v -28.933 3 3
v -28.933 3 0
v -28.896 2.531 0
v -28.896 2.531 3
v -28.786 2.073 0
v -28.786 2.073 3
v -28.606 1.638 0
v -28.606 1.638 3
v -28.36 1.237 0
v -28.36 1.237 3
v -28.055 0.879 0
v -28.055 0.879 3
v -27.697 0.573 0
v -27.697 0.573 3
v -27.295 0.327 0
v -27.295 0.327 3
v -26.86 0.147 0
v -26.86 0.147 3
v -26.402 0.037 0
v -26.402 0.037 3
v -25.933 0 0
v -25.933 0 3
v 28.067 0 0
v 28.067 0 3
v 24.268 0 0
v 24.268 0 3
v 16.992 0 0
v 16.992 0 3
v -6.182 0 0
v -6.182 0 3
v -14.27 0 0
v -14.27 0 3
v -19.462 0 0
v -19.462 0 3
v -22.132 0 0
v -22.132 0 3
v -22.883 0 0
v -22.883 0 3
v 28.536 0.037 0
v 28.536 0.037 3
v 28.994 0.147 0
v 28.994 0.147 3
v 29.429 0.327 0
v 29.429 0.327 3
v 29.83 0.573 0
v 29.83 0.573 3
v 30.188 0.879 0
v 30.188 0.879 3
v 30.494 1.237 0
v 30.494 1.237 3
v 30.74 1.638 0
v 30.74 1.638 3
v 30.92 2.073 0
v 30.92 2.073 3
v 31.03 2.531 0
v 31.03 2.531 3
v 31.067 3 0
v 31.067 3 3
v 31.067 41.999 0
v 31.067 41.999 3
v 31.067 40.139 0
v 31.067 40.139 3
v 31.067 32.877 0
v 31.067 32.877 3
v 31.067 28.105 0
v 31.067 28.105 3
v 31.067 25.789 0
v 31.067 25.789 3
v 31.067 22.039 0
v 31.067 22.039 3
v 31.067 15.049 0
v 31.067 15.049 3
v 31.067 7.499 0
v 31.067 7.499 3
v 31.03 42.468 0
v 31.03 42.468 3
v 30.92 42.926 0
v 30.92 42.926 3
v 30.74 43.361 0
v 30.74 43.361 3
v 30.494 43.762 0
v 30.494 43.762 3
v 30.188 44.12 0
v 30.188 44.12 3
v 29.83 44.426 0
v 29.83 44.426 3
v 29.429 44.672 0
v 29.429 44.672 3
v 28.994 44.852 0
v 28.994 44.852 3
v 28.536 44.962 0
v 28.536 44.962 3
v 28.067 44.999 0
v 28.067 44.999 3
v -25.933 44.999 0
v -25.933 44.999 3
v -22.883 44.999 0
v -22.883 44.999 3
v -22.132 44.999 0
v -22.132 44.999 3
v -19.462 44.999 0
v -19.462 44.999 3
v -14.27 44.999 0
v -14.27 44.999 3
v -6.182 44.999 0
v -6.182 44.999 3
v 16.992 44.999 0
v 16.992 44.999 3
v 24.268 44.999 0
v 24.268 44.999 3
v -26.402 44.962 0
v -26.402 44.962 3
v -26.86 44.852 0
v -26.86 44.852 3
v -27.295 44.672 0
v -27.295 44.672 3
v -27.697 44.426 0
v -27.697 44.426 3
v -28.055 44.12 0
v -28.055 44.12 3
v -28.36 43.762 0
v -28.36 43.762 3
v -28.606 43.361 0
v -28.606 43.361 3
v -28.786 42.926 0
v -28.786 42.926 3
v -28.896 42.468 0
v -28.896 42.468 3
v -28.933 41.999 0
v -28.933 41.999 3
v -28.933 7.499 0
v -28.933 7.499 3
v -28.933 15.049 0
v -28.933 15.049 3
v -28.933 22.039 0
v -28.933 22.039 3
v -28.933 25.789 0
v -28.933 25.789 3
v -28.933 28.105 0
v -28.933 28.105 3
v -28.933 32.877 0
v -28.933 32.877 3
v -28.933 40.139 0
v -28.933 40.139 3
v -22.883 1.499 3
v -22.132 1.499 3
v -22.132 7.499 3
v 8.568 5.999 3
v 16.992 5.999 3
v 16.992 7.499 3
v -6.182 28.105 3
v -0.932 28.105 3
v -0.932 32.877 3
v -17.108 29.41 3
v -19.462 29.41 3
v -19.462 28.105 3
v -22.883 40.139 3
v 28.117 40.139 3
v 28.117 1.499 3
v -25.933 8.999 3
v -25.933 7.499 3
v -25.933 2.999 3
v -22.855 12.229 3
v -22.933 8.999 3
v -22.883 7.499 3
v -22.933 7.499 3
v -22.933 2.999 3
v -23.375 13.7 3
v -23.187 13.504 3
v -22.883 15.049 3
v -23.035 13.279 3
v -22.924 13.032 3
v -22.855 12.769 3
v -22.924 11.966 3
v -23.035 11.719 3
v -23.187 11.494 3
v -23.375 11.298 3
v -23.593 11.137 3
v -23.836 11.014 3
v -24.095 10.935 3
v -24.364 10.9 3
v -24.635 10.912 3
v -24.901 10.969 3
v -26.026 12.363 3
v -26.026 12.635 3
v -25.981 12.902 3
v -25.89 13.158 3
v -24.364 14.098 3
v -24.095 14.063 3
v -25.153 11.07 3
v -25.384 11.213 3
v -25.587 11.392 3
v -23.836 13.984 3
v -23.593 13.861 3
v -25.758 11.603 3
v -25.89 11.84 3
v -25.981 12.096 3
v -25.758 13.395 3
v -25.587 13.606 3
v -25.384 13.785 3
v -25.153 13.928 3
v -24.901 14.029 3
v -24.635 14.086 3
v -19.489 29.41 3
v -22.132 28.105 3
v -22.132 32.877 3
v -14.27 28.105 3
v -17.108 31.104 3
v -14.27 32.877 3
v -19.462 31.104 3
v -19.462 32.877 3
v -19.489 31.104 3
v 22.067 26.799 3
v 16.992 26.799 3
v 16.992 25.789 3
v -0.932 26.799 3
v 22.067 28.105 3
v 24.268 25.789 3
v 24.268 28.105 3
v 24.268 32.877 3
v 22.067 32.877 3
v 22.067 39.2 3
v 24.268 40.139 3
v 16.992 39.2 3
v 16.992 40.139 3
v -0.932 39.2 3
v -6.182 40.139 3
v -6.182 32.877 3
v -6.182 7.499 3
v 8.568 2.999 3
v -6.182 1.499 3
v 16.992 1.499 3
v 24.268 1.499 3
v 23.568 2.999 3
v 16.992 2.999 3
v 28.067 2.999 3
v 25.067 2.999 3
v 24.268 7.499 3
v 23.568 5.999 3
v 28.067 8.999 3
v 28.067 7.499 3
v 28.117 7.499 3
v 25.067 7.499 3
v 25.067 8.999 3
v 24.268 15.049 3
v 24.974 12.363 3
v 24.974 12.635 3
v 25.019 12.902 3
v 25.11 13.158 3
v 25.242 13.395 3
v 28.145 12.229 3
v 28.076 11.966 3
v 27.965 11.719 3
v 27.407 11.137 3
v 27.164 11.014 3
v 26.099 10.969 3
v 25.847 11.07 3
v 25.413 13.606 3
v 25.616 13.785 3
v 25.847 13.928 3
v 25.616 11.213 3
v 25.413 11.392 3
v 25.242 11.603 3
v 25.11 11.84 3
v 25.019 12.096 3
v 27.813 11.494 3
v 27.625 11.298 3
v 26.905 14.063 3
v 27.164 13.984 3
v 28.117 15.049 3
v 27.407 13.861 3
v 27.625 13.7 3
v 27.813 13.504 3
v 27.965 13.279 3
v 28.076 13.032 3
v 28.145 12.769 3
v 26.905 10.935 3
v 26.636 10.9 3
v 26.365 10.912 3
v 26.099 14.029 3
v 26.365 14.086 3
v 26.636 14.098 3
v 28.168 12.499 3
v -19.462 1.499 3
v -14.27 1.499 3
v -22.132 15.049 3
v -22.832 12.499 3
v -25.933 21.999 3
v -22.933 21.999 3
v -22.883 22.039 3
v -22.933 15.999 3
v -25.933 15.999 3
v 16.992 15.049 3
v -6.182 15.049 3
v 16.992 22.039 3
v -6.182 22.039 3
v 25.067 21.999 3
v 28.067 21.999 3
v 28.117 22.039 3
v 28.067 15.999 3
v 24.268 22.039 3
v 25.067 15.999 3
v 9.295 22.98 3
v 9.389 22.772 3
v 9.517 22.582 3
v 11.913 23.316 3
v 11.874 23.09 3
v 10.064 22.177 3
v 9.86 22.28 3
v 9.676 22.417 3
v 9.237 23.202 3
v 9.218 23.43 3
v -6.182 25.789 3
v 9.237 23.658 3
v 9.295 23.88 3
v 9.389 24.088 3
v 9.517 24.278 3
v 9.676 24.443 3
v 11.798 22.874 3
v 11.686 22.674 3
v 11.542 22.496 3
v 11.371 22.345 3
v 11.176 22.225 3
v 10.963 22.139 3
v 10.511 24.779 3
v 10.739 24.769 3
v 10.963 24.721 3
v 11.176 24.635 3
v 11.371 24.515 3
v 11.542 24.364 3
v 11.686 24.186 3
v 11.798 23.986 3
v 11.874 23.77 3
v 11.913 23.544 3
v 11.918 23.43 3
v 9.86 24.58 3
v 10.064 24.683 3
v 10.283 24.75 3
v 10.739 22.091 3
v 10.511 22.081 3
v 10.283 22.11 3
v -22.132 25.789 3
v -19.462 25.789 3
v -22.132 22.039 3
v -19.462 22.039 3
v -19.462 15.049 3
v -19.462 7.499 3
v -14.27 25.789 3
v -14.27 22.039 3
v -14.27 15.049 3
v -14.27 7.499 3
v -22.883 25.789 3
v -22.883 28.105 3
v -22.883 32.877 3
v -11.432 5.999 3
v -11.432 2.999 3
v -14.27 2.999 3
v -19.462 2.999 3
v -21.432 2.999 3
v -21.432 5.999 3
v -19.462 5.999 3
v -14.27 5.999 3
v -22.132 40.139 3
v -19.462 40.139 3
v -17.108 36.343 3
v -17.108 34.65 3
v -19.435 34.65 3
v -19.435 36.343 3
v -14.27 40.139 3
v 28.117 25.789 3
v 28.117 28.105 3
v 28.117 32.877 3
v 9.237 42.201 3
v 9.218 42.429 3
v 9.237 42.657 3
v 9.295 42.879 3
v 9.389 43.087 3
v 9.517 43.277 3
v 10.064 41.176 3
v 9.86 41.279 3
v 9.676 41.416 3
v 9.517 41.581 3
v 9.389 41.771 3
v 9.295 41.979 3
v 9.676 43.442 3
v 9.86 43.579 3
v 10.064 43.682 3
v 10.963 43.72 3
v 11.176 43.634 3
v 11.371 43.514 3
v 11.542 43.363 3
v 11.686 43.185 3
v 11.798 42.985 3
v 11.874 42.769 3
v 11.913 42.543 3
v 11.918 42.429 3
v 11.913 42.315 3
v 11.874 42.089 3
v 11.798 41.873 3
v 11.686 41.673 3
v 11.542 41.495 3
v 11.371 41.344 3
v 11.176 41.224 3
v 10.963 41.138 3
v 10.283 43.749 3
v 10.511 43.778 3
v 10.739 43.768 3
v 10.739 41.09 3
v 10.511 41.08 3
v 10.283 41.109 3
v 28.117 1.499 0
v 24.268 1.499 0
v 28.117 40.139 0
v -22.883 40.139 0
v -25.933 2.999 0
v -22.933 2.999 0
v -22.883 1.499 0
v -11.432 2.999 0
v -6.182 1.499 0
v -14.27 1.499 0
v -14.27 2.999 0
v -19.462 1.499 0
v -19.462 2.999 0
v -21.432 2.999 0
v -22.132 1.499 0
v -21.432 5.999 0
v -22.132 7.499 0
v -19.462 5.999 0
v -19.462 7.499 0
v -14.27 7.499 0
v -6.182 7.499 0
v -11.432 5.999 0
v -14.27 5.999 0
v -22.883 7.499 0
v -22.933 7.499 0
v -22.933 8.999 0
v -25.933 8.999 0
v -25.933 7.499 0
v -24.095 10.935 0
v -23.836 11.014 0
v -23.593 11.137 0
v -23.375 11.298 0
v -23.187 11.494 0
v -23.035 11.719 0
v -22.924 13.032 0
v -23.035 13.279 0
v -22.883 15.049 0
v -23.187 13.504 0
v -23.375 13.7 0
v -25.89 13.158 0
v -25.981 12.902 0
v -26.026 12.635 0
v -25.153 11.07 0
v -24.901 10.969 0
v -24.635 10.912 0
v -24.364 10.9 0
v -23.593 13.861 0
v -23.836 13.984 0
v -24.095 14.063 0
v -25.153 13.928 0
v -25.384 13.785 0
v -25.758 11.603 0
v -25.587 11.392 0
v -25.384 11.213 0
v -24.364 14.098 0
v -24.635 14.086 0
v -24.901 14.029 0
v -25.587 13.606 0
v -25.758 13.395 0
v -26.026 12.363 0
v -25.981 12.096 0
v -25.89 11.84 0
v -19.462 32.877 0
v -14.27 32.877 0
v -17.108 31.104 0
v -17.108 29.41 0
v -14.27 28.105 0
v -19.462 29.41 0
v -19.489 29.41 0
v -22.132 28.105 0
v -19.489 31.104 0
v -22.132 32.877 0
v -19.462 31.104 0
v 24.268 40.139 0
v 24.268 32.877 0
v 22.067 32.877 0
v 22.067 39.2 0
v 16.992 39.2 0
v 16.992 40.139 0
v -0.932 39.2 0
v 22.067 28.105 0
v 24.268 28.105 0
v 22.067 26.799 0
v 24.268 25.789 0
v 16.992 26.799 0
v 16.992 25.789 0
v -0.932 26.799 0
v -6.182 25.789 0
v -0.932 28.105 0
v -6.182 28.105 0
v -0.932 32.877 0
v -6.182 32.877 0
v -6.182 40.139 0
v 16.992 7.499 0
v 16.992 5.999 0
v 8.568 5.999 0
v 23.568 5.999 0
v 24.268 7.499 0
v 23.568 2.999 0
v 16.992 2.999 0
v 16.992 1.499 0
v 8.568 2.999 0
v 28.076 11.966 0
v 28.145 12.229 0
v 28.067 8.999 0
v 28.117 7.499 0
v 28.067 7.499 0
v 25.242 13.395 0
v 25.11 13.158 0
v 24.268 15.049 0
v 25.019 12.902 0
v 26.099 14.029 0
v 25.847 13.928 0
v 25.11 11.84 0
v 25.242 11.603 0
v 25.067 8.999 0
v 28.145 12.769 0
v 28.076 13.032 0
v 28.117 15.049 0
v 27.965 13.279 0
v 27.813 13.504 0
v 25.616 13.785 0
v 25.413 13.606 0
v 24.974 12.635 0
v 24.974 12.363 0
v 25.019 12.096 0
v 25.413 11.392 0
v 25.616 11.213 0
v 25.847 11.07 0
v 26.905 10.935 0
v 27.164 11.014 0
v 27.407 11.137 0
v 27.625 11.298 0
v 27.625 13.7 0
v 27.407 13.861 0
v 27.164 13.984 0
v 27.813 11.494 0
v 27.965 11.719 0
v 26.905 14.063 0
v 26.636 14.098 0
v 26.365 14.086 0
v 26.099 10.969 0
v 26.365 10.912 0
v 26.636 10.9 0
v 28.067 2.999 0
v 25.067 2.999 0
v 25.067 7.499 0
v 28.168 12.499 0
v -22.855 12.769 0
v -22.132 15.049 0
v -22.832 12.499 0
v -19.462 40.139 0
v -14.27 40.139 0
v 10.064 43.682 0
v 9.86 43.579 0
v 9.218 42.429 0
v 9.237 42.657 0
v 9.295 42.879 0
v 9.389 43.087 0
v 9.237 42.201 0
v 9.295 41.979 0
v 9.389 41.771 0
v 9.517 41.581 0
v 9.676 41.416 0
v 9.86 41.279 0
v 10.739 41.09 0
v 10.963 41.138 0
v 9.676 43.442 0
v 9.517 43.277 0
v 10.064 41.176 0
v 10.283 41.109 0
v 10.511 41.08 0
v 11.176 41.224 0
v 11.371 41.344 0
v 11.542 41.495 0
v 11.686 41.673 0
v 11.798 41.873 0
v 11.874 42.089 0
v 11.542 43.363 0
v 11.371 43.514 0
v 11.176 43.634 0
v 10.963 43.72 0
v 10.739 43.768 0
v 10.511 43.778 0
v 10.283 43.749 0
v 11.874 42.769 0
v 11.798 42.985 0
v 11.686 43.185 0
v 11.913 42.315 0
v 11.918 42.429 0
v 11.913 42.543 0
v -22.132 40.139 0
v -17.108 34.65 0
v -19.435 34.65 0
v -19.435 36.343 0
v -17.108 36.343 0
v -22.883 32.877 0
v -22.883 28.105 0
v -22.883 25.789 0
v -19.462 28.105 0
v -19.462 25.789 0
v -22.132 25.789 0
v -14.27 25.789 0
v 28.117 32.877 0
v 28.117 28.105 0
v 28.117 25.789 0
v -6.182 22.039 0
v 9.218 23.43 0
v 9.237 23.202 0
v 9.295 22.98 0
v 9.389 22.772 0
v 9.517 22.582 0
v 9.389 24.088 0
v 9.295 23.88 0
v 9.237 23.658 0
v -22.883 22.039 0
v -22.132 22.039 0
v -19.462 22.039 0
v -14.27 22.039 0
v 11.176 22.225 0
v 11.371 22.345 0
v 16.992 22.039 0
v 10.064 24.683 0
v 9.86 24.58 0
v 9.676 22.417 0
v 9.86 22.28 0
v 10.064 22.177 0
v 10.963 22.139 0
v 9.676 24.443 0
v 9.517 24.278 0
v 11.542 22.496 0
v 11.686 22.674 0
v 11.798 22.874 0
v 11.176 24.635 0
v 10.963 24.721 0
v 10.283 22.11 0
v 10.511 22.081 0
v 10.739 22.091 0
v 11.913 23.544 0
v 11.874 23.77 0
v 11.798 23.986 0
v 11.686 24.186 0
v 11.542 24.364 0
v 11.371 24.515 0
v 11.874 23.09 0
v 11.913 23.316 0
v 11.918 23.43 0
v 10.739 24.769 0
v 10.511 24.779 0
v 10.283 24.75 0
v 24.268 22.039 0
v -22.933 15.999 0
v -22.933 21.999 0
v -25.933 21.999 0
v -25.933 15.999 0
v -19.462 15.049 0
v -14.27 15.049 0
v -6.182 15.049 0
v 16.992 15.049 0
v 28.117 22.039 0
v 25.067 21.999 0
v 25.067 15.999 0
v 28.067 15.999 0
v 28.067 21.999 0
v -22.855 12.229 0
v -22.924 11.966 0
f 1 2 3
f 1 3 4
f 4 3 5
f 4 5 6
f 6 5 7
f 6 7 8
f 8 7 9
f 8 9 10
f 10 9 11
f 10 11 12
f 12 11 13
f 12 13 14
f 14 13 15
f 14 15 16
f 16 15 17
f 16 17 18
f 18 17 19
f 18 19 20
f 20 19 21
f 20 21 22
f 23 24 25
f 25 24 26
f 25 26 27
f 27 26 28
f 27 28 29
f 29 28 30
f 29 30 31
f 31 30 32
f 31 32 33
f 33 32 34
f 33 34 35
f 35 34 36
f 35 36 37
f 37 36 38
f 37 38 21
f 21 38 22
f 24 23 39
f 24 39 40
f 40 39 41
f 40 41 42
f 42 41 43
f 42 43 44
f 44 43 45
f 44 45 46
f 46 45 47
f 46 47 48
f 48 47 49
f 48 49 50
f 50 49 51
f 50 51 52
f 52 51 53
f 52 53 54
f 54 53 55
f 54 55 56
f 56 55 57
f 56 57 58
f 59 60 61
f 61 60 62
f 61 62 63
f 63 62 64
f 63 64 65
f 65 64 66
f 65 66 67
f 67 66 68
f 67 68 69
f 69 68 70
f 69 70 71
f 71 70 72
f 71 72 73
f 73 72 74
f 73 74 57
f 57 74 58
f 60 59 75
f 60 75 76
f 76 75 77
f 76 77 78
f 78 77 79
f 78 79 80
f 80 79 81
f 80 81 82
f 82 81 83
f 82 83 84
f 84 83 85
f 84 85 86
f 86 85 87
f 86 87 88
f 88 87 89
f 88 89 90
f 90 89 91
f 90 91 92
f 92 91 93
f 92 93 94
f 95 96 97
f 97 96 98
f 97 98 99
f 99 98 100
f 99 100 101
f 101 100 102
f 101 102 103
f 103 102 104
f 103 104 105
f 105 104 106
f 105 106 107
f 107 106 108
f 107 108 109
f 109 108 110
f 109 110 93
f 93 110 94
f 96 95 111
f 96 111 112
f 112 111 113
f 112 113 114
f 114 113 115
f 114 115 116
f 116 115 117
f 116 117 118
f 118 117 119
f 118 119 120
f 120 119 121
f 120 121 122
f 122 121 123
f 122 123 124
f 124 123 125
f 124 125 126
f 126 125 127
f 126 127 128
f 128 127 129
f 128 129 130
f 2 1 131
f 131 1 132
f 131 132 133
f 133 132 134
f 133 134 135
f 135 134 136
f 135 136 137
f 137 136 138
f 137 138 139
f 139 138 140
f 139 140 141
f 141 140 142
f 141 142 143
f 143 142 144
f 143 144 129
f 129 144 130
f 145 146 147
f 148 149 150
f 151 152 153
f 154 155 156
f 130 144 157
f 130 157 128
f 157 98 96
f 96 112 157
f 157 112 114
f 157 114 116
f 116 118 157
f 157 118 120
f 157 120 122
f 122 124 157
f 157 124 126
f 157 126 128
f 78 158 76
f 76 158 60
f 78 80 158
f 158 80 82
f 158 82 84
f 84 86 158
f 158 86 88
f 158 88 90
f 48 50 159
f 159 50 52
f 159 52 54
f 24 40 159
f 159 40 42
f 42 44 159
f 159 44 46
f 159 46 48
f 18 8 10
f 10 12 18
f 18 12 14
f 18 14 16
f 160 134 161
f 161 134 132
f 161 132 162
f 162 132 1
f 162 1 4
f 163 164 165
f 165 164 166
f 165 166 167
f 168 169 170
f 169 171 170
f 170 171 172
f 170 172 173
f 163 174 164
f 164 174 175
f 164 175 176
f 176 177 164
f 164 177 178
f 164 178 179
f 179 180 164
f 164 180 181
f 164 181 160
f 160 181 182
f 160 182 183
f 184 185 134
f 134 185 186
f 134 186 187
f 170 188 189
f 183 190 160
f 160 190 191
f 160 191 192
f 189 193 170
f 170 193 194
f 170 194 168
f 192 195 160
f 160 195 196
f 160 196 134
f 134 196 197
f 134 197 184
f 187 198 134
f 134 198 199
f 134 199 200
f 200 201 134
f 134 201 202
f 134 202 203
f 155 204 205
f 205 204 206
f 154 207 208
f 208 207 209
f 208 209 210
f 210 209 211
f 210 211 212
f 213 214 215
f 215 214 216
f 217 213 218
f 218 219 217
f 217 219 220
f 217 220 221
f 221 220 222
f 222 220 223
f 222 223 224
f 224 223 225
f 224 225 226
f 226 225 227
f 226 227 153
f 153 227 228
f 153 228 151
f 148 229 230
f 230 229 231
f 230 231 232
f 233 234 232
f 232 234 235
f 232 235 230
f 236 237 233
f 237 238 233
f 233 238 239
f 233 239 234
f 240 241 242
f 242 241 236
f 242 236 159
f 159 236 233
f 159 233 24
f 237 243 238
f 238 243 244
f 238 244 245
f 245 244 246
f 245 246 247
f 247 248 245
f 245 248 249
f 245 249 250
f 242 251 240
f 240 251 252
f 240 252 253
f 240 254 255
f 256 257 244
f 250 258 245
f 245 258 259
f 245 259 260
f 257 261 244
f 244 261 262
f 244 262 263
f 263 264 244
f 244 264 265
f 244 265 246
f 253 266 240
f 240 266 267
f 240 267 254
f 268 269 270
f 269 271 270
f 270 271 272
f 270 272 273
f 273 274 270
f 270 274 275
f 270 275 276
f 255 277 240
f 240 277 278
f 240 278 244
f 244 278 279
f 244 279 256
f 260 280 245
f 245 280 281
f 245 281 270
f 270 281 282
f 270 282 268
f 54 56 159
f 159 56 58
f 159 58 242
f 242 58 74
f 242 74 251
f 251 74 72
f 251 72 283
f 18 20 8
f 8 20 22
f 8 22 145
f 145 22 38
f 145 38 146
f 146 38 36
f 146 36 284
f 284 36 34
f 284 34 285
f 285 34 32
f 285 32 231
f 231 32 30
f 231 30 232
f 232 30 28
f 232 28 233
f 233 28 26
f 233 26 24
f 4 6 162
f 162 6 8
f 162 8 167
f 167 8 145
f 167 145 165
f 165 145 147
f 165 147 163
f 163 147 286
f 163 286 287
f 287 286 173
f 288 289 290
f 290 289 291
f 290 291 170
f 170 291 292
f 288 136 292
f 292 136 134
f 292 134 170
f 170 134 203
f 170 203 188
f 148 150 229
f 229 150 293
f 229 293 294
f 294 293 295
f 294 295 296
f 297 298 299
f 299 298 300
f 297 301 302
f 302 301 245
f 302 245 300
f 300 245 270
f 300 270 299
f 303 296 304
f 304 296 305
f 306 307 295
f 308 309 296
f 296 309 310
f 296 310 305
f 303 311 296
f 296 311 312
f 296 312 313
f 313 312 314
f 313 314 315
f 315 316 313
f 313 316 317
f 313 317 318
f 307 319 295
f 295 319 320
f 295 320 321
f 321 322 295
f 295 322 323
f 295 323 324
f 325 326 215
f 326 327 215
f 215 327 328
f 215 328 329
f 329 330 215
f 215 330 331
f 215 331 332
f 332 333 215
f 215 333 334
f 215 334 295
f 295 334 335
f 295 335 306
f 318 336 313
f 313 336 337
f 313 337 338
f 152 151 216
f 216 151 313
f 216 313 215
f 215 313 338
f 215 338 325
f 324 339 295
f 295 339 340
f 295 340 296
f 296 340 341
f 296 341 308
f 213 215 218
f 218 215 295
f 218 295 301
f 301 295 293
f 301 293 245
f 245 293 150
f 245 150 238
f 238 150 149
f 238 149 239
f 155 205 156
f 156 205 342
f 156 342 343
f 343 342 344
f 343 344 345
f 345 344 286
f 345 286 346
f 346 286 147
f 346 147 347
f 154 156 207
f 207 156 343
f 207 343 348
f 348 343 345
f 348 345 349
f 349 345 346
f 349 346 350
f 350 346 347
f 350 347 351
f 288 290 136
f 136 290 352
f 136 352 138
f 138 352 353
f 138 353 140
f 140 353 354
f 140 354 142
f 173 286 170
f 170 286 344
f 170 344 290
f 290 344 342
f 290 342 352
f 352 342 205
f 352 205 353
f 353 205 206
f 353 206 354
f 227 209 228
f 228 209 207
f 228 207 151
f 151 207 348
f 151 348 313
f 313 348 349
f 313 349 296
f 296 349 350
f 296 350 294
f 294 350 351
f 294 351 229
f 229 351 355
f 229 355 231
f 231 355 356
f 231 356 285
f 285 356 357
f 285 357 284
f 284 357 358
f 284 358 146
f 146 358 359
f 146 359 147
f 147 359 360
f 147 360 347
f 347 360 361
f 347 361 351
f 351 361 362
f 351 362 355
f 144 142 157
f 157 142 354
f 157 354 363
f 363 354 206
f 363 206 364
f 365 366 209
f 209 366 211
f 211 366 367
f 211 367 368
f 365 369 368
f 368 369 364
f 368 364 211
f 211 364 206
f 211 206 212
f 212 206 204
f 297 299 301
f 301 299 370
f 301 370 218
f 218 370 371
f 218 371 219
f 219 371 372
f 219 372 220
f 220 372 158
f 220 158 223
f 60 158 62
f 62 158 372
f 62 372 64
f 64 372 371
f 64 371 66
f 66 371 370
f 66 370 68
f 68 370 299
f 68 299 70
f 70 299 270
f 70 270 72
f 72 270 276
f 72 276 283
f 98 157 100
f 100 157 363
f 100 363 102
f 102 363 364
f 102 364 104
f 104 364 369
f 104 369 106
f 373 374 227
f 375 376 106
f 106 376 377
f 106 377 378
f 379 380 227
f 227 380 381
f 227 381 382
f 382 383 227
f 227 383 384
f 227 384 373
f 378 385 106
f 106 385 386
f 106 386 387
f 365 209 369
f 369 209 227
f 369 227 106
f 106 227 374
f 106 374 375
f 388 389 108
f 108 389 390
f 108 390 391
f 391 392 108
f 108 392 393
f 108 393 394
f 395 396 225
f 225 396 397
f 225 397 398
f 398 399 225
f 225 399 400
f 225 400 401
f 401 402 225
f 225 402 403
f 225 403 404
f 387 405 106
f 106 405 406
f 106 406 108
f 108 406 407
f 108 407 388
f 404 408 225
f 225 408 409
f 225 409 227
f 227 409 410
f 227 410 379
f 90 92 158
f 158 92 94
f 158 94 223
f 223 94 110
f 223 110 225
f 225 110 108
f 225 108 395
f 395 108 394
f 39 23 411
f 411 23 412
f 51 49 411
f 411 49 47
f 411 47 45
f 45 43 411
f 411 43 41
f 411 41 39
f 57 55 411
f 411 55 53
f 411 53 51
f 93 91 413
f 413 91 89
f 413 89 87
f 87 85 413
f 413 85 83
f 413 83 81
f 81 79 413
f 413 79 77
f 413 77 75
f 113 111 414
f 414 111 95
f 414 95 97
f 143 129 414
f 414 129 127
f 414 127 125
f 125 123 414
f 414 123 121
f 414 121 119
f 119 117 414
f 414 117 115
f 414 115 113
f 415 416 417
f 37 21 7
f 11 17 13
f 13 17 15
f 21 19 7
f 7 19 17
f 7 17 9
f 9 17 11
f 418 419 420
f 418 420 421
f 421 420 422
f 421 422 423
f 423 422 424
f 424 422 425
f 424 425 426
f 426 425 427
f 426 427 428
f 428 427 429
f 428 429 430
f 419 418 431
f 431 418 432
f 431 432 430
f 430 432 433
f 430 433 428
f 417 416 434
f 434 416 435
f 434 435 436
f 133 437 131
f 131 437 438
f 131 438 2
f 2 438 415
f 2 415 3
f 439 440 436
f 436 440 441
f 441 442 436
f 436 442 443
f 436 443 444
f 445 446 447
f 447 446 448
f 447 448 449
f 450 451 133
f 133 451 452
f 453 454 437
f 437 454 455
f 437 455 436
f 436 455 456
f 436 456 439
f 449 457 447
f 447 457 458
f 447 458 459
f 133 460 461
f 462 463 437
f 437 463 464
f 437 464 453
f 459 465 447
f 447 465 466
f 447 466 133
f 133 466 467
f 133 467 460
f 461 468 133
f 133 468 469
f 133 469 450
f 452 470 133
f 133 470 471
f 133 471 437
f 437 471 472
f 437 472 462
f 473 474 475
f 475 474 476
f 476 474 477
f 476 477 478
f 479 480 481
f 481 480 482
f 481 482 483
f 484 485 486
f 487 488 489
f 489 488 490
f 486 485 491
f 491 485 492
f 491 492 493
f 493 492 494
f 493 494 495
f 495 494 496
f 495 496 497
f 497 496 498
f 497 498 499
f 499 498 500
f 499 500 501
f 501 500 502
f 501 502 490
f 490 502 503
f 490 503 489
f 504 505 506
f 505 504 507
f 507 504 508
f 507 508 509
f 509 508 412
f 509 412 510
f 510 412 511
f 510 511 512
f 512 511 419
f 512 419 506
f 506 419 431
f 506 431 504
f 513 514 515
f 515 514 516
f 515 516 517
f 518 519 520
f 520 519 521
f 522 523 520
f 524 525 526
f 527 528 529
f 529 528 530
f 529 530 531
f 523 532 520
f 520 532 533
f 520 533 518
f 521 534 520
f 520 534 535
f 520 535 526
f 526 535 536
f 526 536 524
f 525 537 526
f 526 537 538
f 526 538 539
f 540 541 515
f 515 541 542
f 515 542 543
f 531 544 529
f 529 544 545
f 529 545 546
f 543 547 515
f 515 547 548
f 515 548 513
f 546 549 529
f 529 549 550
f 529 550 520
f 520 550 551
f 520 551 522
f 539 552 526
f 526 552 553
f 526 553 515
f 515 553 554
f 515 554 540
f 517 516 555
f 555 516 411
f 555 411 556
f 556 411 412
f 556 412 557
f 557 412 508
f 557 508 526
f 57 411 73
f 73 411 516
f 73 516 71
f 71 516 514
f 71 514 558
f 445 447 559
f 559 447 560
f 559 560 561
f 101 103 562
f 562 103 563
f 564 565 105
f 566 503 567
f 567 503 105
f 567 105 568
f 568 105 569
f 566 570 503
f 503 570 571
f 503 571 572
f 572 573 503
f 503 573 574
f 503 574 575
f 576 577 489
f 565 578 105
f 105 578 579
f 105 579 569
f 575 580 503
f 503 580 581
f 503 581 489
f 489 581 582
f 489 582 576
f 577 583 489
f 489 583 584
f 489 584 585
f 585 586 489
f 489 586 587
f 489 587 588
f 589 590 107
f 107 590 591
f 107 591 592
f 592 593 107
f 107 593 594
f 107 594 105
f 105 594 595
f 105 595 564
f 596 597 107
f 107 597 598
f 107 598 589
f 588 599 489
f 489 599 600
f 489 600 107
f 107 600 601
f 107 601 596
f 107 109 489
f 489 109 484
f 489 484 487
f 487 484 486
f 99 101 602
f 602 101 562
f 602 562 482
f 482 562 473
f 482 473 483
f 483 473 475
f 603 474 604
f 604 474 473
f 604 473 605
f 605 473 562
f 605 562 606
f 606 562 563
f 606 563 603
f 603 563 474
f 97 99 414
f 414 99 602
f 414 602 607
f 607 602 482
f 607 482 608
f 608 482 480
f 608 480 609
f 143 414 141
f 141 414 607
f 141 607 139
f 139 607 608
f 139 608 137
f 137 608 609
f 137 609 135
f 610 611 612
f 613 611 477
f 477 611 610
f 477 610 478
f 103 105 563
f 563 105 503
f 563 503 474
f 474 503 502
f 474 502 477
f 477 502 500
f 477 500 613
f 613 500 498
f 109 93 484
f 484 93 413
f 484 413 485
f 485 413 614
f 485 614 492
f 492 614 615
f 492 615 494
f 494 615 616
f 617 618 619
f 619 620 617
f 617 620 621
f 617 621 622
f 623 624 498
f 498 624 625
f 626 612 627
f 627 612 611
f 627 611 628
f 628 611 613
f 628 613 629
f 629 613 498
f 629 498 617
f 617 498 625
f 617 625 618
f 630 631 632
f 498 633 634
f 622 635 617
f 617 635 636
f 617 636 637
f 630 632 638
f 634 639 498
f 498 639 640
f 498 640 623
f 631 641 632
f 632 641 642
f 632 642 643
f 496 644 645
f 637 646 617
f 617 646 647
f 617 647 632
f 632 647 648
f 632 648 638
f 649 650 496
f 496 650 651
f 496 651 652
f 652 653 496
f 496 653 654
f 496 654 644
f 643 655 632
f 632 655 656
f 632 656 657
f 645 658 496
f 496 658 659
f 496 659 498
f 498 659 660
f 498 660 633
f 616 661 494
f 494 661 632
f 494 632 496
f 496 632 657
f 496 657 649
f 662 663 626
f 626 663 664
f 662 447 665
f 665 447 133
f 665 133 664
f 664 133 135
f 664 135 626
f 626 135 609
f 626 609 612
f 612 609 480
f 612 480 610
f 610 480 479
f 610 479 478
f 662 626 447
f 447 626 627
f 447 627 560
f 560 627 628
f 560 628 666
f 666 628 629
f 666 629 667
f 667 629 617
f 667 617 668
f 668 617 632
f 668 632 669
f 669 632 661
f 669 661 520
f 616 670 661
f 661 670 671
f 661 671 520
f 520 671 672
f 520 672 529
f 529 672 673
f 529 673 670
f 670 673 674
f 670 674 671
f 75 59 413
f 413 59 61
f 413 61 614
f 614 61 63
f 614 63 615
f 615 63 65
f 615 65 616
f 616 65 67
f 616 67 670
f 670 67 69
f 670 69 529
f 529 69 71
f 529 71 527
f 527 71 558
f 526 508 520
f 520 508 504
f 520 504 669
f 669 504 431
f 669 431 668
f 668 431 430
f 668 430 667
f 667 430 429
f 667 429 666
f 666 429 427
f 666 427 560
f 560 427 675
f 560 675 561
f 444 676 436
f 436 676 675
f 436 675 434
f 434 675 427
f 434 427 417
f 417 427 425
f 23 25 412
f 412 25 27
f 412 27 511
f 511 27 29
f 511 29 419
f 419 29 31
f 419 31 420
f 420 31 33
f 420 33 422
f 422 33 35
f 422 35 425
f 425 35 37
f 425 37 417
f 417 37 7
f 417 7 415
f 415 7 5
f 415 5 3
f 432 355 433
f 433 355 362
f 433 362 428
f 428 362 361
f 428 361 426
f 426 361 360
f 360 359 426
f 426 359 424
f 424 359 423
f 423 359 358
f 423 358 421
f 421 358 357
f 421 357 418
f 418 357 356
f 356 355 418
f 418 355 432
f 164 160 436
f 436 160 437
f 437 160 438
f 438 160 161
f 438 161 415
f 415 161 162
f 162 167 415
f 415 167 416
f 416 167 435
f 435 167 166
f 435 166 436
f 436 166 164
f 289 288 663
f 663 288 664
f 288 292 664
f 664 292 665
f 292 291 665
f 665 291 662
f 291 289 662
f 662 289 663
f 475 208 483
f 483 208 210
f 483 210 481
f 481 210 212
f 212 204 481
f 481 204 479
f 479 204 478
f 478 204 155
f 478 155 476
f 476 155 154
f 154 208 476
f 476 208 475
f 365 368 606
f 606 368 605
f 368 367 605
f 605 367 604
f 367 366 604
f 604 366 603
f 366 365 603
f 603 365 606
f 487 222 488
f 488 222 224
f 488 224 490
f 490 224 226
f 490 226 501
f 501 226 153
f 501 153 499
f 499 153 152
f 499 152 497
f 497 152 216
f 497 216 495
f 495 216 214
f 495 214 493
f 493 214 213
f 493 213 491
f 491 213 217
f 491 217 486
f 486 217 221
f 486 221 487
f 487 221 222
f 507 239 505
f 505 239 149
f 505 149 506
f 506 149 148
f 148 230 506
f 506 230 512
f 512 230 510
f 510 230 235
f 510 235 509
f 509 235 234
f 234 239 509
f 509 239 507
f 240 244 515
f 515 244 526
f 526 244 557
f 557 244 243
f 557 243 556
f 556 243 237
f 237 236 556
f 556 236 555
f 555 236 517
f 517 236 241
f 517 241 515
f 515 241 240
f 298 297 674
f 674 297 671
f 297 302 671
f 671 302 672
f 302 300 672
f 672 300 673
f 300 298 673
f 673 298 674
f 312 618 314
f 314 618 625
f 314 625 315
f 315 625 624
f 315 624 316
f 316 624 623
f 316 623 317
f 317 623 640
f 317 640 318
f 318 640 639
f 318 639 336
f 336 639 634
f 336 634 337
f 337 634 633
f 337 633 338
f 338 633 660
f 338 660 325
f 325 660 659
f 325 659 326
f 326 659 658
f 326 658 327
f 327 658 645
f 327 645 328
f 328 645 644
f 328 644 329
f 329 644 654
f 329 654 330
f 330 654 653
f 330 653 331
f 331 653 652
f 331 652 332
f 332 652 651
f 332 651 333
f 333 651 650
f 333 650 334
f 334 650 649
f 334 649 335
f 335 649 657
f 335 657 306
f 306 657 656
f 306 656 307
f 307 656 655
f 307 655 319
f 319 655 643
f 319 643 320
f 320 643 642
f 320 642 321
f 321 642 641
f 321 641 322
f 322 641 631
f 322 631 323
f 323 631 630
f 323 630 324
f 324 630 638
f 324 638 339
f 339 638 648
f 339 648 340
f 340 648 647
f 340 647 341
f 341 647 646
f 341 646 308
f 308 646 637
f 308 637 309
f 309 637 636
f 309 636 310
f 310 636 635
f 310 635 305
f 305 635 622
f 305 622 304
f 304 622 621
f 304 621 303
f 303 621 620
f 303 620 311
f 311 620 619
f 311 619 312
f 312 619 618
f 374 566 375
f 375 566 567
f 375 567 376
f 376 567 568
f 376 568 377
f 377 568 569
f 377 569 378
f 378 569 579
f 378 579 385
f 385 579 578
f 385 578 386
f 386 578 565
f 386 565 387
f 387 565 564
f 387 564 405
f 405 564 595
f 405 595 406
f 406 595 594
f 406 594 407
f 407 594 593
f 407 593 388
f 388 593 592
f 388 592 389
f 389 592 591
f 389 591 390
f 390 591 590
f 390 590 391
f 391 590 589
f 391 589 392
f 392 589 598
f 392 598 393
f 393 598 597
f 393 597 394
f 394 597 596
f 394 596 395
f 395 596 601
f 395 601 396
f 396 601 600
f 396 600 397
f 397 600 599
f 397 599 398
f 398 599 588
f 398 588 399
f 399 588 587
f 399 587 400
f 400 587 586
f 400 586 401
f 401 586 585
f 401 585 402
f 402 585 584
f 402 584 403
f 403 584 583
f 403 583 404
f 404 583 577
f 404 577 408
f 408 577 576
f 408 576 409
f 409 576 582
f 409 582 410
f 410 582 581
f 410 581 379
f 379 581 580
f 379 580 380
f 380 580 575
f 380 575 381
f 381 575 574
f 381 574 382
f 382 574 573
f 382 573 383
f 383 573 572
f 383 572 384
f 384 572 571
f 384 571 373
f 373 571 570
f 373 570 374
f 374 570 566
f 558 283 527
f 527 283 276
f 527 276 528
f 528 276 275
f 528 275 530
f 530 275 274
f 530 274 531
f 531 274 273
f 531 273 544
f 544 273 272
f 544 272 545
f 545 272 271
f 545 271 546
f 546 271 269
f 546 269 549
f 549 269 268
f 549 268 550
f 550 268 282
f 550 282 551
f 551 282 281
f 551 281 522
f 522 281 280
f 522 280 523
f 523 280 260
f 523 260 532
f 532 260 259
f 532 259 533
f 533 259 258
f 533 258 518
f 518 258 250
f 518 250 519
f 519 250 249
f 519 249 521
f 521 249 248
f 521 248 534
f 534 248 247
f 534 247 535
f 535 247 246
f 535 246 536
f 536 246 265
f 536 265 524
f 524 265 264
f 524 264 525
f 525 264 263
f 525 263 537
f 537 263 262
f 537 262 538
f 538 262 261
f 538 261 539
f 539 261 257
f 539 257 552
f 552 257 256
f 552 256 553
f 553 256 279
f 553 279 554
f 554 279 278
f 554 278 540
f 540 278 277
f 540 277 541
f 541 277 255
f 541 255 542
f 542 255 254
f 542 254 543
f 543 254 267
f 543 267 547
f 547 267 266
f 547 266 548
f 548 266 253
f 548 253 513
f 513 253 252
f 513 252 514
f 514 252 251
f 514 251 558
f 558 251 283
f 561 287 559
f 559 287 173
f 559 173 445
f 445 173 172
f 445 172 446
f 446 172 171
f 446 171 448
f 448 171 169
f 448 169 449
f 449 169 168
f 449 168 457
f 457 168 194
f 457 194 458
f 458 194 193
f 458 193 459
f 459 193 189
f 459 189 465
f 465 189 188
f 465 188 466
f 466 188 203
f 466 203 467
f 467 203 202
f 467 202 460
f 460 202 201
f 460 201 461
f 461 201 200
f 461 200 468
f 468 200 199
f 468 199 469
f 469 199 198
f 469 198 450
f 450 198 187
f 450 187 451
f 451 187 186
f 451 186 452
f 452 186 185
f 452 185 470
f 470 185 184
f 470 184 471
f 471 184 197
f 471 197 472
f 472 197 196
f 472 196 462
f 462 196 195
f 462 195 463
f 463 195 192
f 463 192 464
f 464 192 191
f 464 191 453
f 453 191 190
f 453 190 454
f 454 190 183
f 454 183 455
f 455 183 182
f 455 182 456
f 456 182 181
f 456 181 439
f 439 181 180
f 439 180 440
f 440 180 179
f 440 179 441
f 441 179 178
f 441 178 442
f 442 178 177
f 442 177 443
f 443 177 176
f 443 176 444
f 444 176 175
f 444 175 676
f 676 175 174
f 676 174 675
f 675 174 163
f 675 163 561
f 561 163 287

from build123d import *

# Parameters (mm, degrees)
SKETCH_1_R          = 1.35
SKETCH_1_W          = 10
SKETCH_1_H          = 3
SKETCH_1_W_2        = 3
SKETCH_1_H_2        = 6
SKETCH_1_W_3        = 2.381
SKETCH_1_H_3        = 1.694
SKETCH_1_W_4        = 2.327
SKETCH_1_H_4        = 1.693
SKETCH_1_W_5        = 22.999
SKETCH_1_H_5        = 12.401
SKETCH_1_W_6        = 15
EXTRUDE_1_DEPTH     = 3
SKETCH_2_R          = 1.6
CUT_EXTRUDE_1_DEPTH = 55.763647529


with BuildPart() as part:
    # 草图1 → 凸台-拉伸1 (new body)
    with BuildSketch(Plane(origin=(0, 0, 0), x_dir=(-1, 0, 0), z_dir=(0, 0, -1))):
        with BuildLine():
            Line((28.933183464, 3), (28.933183464, 41.999))
            ThreePointArc((28.933183464, 41.999), (28.054503808, 44.120320344), (25.933183464, 44.999))
            Line((25.933183464, 44.999), (-28.066816536, 44.999))
            ThreePointArc((-28.066816536, 44.999), (-30.18813688, 44.120320344), (-31.066816536, 41.999))
            Line((-31.066816536, 41.999), (-31.066816536, 3))
            ThreePointArc((-31.066816536, 3), (-30.18813688, 0.878679656), (-28.066816536, 0))
            Line((-28.066816536, 0), (25.933183464, 0))
            ThreePointArc((25.933183464, 0), (28.054503808, 0.878679656), (28.933183464, 3))
        make_face()
        with Locations(Location((-26.567767322, 12.499, 0), (0, 0, 180))):
            Circle(SKETCH_1_R, mode=Mode.SUBTRACT)
        with Locations(Location((-10.567816536, 23.43, 0), (0, 0, 180))):
            Circle(SKETCH_1_R, mode=Mode.SUBTRACT)
        with Locations(Location((24.432183464, 12.499, 0), (0, 0, 180))):
            Circle(SKETCH_1_R, mode=Mode.SUBTRACT)
        with Locations(Location((-10.567816536, 42.429, 0), (0, 0, 180))):
            Circle(SKETCH_1_R, mode=Mode.SUBTRACT)
        with Locations((16.432183464, 4.499)):
            Rectangle(SKETCH_1_W, SKETCH_1_H, mode=Mode.SUBTRACT)
        with Locations((24.433183464, 5.999)):
            Rectangle(SKETCH_1_W_2, SKETCH_1_H_2, mode=Mode.SUBTRACT)
        with Locations((24.433183464, 18.999)):
            Rectangle(SKETCH_1_W_2, SKETCH_1_H_2, mode=Mode.SUBTRACT)
        with Locations((18.298683464, 30.257)):
            Rectangle(SKETCH_1_W_3, SKETCH_1_H_3, mode=Mode.SUBTRACT)
        with Locations((18.271683464, 35.4965)):
            Rectangle(SKETCH_1_W_4, SKETCH_1_H_4, mode=Mode.SUBTRACT)
        with Locations((-10.567316536, 32.9995)):
            Rectangle(SKETCH_1_W_5, SKETCH_1_H_5, mode=Mode.SUBTRACT)
        with Locations((-16.067816536, 4.499)):
            Rectangle(SKETCH_1_W_6, SKETCH_1_H, mode=Mode.SUBTRACT)
        with Locations((-26.566816536, 5.999)):
            Rectangle(SKETCH_1_W_2, SKETCH_1_H_2, mode=Mode.SUBTRACT)
        with Locations((-26.566816536, 18.999)):
            Rectangle(SKETCH_1_W_2, SKETCH_1_H_2, mode=Mode.SUBTRACT)
    extrude(amount=-EXTRUDE_1_DEPTH)

    # 草图2 → 切除-拉伸1 (cut, through all)
    with BuildSketch(Plane.XY.offset(3)):
        with Locations((-24.432183464, 12.499)):
            Circle(SKETCH_2_R)
        with Locations((26.567767322, 12.499)):
            Circle(SKETCH_2_R)
    extrude(amount=-CUT_EXTRUDE_1_DEPTH, mode=Mode.SUBTRACT)


solid = part.part
